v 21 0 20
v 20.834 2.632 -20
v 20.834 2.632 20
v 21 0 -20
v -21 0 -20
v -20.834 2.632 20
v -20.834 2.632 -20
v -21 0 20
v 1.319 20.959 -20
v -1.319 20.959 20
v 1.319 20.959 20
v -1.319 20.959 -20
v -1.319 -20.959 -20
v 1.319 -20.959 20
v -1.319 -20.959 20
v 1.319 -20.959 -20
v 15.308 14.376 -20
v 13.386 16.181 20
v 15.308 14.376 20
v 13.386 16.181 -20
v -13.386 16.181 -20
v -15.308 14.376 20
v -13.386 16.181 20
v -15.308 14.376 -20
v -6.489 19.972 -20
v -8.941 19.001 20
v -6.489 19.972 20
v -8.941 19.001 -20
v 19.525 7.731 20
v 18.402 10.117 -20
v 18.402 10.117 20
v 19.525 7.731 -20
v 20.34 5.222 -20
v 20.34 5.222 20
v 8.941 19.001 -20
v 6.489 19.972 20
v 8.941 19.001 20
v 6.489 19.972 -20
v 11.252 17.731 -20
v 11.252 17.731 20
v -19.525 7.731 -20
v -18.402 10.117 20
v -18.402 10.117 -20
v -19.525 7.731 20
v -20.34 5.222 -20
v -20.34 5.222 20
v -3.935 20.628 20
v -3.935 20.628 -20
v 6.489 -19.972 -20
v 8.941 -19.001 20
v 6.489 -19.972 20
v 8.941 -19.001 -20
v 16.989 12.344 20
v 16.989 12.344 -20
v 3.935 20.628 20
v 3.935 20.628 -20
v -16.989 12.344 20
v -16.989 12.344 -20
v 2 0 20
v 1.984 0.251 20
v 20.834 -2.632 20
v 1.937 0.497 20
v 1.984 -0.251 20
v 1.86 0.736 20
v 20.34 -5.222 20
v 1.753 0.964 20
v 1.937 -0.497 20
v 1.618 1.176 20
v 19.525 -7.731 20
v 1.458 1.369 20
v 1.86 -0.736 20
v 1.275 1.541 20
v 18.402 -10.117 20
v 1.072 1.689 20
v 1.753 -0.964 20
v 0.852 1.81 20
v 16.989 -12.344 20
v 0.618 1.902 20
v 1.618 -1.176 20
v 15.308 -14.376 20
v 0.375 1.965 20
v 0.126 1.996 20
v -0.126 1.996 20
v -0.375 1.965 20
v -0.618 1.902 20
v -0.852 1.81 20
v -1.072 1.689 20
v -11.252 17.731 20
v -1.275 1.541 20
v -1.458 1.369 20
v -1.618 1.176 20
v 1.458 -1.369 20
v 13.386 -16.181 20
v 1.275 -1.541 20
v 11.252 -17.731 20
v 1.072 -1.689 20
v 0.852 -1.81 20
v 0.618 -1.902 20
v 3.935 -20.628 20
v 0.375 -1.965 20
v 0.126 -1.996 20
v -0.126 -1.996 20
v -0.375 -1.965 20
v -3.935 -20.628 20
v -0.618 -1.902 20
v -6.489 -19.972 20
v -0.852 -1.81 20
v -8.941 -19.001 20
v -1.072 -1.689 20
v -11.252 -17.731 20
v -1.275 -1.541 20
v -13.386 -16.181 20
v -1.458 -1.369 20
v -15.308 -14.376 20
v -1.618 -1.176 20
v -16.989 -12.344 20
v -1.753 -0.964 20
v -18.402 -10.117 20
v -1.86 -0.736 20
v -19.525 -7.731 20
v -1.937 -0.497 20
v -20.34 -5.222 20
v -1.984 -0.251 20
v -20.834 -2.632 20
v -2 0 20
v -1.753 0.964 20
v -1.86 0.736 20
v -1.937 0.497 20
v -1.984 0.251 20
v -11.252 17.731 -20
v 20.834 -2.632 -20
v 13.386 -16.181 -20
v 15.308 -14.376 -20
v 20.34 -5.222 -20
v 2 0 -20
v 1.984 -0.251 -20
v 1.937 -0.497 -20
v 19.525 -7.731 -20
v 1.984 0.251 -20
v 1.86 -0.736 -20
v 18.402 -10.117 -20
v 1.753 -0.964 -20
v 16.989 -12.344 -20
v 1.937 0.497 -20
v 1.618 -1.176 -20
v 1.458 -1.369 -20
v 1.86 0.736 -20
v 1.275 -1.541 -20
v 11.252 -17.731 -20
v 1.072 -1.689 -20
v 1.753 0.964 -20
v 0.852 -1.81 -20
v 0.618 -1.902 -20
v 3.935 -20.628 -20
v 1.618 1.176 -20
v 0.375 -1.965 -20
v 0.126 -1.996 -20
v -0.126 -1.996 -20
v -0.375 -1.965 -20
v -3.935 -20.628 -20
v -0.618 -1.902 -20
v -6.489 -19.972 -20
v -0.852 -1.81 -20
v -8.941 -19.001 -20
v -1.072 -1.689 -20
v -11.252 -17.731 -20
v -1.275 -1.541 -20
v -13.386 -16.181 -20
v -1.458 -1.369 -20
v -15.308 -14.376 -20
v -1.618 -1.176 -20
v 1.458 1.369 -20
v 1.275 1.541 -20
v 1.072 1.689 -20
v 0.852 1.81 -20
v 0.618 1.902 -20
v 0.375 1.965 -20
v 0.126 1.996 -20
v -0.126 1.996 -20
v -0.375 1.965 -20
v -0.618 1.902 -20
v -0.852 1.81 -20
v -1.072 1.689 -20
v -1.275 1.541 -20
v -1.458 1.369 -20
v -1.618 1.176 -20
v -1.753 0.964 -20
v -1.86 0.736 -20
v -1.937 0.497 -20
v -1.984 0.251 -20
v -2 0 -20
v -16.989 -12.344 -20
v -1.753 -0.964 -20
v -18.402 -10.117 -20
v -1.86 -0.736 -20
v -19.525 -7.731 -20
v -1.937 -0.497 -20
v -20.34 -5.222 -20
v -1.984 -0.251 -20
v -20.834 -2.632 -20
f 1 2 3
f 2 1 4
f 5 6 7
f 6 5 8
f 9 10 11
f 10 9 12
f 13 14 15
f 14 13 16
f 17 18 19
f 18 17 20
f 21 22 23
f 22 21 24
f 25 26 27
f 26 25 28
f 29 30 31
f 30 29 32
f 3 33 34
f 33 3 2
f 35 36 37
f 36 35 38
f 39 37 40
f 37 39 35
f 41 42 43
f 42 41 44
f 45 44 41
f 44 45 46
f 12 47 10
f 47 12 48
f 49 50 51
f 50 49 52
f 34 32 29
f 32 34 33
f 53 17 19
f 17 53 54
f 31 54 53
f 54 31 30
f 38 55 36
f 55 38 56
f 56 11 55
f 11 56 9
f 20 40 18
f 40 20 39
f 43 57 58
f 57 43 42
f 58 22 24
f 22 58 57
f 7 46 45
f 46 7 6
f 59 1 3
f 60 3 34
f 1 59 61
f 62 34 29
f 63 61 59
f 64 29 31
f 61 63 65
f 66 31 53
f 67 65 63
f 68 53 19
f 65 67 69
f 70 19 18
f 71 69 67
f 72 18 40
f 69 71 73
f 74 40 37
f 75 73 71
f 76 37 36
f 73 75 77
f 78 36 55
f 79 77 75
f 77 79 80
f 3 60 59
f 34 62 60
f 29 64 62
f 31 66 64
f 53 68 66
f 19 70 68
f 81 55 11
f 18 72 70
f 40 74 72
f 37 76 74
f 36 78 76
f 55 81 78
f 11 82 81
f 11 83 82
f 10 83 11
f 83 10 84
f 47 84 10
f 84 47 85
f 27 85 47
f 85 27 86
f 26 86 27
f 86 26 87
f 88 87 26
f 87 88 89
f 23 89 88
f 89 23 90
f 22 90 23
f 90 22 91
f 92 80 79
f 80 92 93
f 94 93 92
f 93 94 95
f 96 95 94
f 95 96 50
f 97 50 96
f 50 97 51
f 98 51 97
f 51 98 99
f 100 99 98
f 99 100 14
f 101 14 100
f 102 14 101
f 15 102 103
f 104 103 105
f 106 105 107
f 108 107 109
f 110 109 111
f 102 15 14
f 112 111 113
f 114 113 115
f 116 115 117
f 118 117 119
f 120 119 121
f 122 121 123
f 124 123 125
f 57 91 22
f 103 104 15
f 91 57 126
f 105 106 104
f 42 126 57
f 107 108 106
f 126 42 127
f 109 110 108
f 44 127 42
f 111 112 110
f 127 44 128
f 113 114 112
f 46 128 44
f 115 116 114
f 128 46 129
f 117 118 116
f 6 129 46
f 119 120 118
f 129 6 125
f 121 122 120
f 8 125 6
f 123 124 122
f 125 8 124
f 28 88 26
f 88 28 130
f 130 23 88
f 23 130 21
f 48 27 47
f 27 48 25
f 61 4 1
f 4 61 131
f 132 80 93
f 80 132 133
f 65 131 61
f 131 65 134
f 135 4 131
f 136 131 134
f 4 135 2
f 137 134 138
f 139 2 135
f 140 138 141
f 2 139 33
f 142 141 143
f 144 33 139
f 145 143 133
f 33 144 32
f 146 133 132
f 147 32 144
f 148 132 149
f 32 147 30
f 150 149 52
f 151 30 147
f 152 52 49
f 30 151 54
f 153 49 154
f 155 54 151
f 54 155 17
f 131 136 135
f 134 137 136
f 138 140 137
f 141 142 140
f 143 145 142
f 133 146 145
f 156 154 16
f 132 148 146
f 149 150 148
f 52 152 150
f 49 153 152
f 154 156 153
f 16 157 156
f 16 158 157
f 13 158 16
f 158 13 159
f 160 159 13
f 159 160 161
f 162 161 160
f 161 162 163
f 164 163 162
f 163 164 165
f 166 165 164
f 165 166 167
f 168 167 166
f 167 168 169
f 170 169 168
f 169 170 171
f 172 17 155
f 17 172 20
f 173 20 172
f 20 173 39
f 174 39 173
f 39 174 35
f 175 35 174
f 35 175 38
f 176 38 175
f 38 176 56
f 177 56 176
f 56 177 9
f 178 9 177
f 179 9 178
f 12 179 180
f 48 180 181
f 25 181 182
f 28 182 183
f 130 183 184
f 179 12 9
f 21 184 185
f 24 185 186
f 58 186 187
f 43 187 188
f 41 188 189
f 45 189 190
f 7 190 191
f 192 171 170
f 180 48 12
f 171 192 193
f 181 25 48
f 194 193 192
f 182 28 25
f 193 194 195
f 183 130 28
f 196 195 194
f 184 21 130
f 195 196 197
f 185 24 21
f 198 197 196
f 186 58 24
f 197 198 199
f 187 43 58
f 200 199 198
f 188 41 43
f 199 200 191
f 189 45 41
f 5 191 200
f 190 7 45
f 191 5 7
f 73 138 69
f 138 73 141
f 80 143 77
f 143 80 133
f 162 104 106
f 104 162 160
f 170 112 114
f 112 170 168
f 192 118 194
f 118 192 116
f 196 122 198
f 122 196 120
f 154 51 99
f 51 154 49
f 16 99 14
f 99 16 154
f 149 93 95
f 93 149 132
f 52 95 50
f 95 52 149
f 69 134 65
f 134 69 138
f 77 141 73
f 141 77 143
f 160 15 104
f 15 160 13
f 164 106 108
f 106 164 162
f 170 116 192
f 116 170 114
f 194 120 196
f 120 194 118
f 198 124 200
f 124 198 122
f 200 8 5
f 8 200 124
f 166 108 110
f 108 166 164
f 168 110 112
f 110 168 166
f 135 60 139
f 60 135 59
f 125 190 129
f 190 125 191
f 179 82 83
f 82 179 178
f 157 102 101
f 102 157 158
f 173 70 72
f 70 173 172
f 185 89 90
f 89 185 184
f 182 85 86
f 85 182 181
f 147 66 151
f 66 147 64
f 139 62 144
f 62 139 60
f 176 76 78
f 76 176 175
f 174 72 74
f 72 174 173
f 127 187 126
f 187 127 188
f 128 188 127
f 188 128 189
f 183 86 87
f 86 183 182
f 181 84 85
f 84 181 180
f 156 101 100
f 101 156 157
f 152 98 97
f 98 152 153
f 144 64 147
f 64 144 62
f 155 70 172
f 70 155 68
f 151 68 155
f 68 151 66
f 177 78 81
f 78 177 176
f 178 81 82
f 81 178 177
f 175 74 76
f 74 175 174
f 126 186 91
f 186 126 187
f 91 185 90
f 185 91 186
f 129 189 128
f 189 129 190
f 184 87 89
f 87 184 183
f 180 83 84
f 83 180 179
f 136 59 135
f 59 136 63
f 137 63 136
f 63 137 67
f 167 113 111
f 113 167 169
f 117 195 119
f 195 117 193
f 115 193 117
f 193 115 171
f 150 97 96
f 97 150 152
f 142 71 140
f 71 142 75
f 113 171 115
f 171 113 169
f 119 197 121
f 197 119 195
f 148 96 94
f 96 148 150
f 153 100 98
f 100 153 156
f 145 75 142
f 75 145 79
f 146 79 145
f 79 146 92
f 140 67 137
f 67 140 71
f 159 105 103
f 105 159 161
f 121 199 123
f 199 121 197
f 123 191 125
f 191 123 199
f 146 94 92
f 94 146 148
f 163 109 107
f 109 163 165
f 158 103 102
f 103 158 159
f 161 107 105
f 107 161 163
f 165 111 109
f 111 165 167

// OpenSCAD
$fn = 50;


difference() {
	union() {
		translate(v = [0, 0, -20.0000000000]) {
			cylinder(h = 40, r = 21.0000000000);
		}
	}
	union() {
		translate(v = [0, 0, -100.0000000000]) {
			cylinder(h = 200, r = 2);
		}
	}
}
